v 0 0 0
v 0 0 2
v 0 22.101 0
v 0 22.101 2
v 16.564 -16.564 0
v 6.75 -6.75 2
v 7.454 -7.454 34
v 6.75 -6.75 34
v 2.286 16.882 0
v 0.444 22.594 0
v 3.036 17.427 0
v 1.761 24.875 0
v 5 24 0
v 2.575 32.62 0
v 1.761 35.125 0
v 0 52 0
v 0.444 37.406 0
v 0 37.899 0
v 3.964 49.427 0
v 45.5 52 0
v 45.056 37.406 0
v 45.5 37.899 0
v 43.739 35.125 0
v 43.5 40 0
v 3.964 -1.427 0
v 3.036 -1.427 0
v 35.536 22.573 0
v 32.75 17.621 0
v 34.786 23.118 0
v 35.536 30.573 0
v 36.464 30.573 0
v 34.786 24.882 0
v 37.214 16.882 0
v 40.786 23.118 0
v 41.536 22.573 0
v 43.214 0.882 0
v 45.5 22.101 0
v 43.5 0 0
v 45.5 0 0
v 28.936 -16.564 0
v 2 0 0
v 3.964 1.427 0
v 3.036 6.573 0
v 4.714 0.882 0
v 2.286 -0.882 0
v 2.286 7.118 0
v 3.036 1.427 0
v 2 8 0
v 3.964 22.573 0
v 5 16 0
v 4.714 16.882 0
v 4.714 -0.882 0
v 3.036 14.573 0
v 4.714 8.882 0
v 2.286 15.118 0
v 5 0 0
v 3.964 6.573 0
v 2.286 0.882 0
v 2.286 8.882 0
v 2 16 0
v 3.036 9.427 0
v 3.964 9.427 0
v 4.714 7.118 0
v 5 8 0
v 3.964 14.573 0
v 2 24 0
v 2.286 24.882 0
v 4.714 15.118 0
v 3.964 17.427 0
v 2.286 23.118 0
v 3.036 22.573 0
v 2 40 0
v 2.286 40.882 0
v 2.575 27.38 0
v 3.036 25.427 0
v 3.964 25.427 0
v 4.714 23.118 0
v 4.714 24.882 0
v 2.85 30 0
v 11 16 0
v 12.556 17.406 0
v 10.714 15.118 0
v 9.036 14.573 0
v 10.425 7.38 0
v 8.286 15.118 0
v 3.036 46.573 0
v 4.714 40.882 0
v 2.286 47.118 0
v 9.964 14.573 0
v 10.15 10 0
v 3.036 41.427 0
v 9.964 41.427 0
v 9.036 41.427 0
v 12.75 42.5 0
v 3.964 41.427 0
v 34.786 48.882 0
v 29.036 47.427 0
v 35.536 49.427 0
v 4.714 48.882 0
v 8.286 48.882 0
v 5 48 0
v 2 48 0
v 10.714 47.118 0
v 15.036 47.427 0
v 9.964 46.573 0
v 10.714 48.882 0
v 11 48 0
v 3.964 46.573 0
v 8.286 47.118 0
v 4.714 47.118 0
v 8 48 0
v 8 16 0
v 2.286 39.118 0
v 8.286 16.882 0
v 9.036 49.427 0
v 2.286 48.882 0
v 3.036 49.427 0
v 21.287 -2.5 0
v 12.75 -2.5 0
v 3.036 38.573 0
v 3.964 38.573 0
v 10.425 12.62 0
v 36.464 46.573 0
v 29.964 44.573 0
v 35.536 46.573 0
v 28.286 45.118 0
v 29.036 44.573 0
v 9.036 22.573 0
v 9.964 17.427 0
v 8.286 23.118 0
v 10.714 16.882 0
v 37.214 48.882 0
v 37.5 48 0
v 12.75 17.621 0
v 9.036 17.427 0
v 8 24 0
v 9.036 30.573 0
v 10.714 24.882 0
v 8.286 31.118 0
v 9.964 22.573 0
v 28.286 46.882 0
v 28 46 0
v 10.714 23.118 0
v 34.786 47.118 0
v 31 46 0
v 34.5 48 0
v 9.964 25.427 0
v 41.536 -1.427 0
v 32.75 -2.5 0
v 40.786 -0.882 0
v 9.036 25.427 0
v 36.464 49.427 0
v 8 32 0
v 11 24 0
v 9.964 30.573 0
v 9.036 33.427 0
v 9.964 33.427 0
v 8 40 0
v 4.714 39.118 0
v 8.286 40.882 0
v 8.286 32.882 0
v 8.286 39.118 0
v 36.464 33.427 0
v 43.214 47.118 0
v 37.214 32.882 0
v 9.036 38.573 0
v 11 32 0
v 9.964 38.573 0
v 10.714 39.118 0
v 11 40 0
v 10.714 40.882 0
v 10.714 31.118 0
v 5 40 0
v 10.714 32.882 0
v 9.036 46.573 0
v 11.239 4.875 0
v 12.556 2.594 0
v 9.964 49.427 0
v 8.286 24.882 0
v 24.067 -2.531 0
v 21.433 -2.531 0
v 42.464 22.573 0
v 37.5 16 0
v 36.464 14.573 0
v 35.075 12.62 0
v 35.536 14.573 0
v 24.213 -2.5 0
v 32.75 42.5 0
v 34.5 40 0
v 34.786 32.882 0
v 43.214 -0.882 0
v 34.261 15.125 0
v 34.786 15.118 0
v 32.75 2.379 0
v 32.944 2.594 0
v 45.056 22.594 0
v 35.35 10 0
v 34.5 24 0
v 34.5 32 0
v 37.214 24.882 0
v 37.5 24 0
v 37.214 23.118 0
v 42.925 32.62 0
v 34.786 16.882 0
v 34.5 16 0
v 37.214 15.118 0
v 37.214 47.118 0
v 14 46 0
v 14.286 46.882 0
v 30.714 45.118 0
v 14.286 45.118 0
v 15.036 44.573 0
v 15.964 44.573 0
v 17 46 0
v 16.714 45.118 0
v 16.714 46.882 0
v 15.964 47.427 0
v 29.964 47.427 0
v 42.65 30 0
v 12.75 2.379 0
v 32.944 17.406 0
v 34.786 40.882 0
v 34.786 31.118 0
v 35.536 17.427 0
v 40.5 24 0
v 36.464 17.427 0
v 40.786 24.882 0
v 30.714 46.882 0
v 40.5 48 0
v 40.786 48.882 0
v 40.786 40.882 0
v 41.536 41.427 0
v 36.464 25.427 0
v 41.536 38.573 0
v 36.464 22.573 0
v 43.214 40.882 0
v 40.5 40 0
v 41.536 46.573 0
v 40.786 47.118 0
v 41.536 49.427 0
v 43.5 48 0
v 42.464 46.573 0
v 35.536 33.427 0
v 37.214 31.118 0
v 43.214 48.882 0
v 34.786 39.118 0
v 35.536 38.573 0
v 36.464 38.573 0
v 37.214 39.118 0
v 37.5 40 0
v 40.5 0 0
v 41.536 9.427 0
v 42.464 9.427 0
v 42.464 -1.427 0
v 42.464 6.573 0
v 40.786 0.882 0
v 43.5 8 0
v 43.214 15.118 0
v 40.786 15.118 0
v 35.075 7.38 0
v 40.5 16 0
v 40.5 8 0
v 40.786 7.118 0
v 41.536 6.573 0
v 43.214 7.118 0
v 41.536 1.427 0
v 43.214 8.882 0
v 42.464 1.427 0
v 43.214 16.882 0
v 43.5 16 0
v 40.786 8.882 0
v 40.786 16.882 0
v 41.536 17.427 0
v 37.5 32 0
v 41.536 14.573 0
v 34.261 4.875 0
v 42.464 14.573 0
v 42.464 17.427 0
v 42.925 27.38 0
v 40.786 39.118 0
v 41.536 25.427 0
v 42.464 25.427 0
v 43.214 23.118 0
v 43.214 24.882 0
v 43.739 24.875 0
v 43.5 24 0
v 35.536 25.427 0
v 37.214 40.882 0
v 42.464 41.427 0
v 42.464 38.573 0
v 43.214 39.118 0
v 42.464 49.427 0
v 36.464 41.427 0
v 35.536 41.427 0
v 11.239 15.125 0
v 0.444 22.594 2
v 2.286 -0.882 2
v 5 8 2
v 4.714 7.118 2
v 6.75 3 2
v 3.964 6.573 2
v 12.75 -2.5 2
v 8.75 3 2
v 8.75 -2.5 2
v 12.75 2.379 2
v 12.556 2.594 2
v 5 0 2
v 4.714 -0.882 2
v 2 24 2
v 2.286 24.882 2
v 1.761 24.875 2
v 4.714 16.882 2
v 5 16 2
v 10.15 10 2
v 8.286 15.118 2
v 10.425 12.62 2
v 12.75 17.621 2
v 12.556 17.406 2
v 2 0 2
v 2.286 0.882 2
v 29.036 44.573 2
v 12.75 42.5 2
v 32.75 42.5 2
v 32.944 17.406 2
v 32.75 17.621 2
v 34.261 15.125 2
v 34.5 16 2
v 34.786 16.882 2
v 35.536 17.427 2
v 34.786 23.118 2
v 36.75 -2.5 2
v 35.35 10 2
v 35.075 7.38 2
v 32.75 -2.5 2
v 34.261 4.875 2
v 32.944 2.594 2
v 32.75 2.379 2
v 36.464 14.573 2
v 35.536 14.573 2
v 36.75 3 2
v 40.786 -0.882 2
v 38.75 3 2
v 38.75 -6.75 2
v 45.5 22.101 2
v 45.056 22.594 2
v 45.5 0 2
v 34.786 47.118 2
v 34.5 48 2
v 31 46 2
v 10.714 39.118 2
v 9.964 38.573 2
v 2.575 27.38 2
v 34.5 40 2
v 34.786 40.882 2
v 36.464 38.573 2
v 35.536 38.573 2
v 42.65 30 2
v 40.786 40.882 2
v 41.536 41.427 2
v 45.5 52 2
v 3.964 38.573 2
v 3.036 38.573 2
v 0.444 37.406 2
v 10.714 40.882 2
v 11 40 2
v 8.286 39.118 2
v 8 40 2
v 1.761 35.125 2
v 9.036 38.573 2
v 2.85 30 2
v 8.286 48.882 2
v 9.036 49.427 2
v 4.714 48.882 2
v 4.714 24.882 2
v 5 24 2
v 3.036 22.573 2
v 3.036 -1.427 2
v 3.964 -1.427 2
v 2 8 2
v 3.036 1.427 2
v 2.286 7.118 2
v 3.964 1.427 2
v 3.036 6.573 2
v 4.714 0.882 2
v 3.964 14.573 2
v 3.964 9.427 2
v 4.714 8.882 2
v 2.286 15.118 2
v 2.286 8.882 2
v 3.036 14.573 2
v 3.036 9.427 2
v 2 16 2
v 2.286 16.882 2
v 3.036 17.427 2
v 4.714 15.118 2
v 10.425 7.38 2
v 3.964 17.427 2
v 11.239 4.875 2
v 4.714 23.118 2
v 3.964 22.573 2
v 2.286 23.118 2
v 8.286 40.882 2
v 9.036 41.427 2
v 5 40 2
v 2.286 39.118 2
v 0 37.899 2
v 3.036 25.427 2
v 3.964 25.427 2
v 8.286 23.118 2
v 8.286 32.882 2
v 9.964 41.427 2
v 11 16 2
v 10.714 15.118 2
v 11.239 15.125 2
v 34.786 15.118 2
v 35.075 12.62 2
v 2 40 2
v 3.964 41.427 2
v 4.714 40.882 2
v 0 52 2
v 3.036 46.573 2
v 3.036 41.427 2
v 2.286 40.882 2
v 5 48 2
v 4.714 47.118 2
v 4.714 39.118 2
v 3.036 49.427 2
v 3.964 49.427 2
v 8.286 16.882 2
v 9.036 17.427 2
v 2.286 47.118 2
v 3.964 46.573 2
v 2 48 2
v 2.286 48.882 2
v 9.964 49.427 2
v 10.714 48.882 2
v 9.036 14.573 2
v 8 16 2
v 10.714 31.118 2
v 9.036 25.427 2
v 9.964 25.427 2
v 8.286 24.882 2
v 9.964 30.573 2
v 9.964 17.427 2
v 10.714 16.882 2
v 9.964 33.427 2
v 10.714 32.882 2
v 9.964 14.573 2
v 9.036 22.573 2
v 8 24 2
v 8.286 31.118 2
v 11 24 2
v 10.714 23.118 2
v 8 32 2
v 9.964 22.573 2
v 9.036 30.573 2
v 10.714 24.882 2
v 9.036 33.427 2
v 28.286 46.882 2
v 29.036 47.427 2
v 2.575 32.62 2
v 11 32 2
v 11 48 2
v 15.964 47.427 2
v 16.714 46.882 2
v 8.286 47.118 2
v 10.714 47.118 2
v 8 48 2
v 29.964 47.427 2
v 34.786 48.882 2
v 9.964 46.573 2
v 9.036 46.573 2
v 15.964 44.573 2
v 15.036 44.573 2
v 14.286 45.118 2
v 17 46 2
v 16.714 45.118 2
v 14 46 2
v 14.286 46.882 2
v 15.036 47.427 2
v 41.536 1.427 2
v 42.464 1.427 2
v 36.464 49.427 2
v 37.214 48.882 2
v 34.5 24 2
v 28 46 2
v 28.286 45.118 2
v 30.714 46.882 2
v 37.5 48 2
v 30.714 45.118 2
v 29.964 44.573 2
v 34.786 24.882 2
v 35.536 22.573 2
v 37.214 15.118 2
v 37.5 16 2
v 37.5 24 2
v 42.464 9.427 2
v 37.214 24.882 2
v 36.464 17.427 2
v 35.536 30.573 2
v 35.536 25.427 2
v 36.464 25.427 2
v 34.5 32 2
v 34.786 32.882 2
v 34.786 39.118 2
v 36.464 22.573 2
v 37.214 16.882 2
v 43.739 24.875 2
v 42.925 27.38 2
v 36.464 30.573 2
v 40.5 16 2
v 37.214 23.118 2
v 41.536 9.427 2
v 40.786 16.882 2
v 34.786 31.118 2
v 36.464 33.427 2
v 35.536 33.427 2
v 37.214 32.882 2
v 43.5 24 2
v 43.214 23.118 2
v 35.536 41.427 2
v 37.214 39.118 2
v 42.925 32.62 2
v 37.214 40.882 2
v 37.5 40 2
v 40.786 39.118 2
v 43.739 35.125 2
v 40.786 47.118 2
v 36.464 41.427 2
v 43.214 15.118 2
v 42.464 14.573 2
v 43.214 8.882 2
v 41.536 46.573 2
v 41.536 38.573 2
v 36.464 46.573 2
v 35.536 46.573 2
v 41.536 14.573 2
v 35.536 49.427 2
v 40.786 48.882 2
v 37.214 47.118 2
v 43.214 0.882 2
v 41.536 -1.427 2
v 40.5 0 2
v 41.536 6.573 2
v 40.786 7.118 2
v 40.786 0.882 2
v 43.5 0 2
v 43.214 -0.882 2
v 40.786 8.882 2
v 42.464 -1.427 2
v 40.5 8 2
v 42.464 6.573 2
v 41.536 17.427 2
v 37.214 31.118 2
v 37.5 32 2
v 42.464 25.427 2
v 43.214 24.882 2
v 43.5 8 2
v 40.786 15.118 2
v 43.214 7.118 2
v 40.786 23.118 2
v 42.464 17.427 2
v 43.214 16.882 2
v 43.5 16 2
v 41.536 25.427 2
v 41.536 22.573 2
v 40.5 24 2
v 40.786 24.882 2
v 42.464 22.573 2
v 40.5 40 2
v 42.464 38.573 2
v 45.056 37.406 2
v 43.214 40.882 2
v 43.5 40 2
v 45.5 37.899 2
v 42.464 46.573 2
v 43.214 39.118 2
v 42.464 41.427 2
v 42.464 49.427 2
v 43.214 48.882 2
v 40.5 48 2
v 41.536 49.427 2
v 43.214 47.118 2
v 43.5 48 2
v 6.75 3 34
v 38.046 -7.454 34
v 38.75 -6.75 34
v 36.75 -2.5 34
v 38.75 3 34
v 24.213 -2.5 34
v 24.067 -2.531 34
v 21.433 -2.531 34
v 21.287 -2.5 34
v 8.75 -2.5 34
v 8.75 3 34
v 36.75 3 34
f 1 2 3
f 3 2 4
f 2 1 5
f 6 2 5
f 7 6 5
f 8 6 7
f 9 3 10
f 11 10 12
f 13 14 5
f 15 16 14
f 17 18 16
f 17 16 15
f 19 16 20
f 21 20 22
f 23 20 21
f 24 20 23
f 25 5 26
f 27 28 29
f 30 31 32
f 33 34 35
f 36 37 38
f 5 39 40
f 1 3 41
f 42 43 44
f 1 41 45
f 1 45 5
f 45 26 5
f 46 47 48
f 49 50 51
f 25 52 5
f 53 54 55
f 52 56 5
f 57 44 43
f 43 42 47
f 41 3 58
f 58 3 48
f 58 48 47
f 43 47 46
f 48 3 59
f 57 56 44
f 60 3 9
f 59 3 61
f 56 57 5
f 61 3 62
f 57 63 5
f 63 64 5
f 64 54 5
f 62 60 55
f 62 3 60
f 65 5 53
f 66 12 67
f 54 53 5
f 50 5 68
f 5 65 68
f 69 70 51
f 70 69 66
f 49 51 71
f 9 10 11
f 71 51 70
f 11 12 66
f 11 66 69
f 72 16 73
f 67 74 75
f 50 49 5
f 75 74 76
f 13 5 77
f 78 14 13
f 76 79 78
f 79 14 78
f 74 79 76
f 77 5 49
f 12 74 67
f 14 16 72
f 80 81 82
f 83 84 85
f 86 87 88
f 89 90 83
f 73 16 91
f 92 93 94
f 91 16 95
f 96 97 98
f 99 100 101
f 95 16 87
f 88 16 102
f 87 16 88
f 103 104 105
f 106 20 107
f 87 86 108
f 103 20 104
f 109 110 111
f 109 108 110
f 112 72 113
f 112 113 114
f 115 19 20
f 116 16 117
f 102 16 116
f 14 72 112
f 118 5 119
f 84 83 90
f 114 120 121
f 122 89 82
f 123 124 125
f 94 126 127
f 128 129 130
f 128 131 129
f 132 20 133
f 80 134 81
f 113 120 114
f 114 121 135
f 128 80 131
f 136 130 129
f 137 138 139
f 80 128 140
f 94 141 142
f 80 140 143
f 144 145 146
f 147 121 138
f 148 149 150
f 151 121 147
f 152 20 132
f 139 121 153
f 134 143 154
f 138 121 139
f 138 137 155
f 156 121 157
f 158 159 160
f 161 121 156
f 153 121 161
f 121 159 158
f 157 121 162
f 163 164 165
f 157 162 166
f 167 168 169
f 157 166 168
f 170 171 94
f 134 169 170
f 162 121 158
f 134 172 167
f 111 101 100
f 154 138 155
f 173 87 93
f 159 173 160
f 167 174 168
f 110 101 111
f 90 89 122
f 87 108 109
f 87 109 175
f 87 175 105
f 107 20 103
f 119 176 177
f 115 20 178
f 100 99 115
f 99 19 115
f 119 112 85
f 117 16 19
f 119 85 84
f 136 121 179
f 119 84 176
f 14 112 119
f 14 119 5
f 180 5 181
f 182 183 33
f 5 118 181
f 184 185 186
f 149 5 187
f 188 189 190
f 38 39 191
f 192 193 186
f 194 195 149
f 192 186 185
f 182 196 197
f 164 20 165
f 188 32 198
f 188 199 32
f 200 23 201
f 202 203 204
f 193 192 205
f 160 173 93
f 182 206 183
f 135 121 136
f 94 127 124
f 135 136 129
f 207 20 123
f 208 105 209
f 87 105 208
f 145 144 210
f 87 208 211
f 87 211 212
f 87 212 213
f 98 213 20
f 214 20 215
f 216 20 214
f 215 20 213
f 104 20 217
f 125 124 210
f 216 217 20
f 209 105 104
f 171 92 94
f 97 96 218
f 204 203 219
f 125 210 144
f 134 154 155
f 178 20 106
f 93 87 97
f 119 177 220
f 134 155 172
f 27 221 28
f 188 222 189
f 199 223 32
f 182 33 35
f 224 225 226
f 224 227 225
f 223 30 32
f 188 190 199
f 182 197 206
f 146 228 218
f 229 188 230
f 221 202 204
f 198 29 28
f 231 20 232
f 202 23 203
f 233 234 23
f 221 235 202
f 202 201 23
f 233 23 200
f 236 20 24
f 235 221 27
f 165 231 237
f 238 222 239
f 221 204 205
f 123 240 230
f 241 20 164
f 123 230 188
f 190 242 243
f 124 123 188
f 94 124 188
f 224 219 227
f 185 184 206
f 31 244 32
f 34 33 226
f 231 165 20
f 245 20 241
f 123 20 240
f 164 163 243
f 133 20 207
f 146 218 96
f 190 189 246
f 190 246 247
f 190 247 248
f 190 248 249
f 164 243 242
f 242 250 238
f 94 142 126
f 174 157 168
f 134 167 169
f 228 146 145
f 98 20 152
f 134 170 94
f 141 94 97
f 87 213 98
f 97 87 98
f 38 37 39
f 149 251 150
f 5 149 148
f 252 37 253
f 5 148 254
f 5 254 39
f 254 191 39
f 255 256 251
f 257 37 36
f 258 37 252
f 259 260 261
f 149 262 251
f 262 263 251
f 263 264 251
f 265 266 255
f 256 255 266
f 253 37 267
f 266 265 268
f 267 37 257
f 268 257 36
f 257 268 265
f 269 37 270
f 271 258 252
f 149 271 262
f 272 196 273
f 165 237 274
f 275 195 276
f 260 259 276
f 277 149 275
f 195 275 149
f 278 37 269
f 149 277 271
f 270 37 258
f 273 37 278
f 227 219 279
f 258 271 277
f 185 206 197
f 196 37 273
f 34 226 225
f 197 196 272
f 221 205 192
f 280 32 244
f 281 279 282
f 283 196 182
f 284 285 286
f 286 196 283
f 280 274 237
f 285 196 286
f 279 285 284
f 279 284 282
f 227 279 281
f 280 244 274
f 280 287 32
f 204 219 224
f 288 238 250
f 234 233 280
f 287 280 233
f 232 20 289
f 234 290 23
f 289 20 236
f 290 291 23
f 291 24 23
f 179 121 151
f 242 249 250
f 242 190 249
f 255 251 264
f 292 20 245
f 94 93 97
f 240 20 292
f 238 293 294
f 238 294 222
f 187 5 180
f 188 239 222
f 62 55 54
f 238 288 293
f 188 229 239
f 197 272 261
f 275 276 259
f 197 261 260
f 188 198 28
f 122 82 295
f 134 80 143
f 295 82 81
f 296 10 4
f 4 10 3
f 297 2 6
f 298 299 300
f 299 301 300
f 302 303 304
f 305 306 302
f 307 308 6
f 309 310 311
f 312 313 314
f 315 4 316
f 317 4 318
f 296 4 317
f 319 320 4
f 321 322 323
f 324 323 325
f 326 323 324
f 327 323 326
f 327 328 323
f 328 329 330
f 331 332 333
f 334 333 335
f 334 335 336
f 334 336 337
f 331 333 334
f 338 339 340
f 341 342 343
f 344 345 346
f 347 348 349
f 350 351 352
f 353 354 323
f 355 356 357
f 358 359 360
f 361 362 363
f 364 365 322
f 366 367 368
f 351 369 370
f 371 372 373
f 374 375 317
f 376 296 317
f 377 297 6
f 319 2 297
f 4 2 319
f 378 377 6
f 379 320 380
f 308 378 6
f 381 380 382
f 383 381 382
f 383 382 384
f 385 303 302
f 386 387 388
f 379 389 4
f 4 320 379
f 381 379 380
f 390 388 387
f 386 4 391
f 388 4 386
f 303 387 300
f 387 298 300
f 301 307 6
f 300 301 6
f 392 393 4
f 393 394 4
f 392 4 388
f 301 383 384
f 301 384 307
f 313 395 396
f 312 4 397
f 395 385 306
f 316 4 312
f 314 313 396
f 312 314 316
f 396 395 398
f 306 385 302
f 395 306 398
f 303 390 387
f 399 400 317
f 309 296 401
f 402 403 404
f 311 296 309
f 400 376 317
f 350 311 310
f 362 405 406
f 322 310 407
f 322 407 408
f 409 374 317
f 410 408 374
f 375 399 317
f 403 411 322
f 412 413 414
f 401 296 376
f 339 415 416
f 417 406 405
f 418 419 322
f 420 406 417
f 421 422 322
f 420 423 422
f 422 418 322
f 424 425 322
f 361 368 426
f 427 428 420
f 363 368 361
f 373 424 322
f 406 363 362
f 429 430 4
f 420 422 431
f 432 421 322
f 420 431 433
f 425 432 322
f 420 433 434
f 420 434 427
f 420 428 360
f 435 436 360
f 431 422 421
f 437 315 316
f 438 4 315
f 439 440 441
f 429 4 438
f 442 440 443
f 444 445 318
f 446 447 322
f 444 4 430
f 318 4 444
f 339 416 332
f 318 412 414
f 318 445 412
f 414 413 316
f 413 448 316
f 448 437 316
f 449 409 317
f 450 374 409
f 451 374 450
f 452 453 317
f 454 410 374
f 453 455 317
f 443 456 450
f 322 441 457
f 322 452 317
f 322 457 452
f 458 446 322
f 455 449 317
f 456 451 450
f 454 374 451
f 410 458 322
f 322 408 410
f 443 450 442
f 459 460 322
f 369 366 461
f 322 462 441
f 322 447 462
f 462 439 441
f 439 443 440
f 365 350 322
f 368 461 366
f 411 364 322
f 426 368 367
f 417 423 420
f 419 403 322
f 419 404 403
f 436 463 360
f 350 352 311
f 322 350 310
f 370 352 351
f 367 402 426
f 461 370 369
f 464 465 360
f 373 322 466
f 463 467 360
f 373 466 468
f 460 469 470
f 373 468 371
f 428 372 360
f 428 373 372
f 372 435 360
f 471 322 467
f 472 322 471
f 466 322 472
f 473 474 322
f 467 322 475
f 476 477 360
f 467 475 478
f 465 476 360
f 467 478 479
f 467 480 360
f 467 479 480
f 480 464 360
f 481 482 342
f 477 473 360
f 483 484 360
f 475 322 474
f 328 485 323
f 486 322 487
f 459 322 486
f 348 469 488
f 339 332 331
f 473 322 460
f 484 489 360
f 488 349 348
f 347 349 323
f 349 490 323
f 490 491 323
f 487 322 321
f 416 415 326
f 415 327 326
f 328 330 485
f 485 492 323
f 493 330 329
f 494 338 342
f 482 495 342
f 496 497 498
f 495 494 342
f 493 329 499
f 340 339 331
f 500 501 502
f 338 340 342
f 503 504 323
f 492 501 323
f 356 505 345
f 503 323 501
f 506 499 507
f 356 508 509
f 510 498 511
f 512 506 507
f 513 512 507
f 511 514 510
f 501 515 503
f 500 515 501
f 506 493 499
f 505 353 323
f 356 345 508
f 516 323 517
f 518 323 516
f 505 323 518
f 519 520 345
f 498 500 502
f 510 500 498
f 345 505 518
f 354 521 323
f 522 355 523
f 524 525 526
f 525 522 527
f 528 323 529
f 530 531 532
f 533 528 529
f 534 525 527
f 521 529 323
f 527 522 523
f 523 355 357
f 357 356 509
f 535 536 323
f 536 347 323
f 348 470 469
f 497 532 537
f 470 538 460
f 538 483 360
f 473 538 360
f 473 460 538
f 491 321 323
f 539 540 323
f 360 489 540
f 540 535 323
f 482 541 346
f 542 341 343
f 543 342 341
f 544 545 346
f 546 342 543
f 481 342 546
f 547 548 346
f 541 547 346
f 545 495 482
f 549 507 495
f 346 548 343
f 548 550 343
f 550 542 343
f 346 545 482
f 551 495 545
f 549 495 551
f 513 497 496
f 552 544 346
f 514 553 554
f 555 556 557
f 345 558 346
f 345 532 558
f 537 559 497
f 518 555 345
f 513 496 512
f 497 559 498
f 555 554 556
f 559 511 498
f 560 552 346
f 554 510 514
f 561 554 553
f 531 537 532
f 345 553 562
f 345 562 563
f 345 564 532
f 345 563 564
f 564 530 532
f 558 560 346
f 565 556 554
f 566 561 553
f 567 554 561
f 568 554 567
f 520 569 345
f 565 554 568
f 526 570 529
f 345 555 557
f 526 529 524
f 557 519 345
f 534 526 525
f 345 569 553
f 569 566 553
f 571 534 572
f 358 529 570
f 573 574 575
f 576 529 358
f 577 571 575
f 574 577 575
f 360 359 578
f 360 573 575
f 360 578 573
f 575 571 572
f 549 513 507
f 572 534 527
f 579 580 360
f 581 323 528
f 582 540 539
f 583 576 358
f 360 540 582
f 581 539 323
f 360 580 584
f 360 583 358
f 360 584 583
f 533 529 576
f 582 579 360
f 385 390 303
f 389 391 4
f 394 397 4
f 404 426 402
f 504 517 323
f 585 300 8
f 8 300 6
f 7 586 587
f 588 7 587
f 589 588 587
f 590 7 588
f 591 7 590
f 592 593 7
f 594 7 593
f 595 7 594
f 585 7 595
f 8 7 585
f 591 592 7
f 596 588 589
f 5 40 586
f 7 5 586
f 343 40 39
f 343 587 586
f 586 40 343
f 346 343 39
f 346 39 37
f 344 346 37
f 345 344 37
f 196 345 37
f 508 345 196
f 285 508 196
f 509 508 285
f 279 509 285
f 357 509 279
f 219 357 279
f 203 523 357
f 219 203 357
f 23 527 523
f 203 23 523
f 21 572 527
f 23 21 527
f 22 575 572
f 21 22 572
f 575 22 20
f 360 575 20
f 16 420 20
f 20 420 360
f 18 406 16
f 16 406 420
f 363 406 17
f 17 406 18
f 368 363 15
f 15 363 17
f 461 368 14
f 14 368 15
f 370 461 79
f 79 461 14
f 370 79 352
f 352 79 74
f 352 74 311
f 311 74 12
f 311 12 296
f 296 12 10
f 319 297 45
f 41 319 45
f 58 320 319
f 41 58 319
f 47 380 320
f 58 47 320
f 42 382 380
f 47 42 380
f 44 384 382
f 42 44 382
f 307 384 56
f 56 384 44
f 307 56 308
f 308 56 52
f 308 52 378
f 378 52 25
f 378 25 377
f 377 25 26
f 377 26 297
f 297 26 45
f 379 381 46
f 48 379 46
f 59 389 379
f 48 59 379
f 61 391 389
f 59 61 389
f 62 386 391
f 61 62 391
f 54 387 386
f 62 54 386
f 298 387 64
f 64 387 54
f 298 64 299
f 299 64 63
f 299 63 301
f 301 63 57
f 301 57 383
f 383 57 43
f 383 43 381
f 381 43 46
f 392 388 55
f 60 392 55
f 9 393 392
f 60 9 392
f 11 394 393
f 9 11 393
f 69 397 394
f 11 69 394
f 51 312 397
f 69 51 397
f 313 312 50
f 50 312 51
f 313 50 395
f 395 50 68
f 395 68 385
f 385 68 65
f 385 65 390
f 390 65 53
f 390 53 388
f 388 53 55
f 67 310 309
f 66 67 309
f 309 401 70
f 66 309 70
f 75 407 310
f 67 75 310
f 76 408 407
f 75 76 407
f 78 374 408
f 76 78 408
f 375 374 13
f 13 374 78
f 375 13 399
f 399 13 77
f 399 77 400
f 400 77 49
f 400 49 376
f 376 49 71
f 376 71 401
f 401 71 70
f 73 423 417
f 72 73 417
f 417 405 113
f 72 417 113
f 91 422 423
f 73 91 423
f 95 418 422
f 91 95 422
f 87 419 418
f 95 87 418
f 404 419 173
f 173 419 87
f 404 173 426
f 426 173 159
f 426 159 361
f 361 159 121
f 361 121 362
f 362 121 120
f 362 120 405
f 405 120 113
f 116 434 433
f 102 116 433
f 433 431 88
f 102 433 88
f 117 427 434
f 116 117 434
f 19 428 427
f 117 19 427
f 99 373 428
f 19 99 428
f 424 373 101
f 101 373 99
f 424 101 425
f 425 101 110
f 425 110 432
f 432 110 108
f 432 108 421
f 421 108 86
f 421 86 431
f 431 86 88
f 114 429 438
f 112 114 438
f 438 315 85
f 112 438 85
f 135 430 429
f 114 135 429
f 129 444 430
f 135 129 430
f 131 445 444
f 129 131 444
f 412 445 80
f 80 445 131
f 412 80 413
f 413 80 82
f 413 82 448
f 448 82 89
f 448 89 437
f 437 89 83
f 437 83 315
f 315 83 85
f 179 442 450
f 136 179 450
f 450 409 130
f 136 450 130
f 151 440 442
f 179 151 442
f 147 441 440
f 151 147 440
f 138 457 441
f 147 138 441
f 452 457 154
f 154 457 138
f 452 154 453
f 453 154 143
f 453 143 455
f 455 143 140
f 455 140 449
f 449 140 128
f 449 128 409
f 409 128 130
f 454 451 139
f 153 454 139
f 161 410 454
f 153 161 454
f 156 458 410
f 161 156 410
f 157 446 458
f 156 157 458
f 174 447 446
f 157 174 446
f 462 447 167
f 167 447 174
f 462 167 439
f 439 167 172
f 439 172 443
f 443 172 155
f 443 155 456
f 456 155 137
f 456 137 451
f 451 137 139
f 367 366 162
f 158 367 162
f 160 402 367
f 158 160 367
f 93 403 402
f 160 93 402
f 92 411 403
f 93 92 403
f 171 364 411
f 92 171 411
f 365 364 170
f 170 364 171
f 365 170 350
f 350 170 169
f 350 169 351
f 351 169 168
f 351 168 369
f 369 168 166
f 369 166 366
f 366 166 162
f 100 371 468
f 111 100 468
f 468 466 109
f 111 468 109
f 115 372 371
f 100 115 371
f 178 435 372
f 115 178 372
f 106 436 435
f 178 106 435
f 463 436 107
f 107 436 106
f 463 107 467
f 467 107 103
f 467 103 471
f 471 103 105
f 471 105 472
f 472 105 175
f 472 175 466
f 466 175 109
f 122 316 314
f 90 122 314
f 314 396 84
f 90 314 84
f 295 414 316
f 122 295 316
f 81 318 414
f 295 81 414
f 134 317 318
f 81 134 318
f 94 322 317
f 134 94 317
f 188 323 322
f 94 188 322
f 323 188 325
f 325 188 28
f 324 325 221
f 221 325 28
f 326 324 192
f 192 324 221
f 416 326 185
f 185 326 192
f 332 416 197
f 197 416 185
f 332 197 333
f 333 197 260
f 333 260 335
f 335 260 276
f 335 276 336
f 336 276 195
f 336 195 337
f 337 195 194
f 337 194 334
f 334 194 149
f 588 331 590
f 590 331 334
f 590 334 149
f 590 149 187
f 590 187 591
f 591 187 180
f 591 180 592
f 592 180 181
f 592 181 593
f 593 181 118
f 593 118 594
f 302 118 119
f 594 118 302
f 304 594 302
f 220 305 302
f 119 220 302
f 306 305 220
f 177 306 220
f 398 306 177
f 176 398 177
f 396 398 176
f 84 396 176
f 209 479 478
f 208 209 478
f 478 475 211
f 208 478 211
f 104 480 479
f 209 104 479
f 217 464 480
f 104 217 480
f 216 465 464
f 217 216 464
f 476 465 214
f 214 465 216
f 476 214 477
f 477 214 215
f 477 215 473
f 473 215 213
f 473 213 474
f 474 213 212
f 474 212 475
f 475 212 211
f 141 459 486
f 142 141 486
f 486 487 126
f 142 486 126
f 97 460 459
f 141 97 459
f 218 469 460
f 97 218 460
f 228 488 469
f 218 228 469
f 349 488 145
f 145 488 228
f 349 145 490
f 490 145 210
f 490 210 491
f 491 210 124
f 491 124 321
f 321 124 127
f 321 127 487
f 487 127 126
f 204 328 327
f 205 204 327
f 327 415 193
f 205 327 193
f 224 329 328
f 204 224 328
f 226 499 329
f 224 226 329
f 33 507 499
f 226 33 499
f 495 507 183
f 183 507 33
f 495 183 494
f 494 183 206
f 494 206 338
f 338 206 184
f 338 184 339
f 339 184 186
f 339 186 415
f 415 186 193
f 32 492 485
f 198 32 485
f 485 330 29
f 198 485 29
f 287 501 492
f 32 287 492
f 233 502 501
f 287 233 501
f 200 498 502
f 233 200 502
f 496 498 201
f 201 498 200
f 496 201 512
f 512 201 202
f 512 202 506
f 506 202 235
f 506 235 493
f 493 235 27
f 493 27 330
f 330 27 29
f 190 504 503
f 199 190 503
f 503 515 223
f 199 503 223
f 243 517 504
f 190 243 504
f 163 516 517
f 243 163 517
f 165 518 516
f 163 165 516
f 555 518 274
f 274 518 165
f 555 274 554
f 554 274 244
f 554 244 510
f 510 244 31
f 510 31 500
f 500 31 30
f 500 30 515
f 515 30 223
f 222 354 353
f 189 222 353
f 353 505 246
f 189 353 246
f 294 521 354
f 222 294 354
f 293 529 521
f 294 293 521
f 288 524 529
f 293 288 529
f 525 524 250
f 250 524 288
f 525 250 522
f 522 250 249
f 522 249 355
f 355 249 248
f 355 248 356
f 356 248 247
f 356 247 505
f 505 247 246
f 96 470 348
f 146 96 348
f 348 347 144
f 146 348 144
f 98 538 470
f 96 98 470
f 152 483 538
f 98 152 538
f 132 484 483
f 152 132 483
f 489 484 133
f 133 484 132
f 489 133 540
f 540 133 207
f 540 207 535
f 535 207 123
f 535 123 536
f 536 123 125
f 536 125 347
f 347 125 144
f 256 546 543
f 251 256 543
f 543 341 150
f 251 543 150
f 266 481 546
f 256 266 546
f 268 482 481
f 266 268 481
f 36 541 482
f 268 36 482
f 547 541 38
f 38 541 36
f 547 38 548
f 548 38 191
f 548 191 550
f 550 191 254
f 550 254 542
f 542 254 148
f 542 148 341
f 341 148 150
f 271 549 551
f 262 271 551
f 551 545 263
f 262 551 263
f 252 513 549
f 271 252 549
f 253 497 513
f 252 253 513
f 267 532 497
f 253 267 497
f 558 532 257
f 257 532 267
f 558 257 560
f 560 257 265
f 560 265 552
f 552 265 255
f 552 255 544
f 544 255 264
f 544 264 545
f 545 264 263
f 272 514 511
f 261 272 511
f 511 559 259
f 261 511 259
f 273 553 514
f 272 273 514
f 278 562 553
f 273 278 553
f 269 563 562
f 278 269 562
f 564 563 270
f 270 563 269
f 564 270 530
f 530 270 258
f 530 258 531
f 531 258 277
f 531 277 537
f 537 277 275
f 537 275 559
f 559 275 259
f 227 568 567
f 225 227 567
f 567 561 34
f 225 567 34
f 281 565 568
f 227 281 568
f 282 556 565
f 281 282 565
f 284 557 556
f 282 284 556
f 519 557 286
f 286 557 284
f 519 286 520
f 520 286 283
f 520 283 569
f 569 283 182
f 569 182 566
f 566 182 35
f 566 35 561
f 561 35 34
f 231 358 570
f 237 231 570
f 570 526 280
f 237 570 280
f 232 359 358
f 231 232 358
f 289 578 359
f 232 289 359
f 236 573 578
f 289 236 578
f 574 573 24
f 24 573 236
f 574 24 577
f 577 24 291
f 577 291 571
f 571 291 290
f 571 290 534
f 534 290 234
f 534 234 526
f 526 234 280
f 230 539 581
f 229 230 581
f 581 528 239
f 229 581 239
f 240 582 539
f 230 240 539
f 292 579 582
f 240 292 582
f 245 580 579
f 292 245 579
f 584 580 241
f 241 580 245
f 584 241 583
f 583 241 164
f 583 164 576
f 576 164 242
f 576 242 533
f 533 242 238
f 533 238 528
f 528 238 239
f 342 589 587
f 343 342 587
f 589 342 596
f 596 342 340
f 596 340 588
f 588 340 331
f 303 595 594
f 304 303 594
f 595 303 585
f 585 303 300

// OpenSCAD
module agujereado(X,Y){
	union(){
		for(j=[0:X])
		{
			translate([0,j*8,0])
			{
				for(i=[0:Y])
				{
					translate([i*6,0,-1])cylinder(r=1.5, h=8, $fn=10);
				}
			}
		}
	}
}

module pieza(){
difference(){
union(){
cube([45.5,52,2]);
translate([45.5/2,0,0])cylinder(r=45.5/2,h=35,$fn=4);
}
rotate([-15,0,0])translate([0,-66,-10])cube([45.5,50,100]);
translate([-1,3,2])cube([47,65,36]);

translate([(45.5-20)/2,-2.5,-1])cube([20,45,40]);
translate([(45.5-20)/2-4,-2.5,2])cube([28,8,40]);


translate([0,-20,2])cube([(45.5-32)/2,70,70]);
translate([45.5-(45.5-32)/2,-20,2])cube([(45.5-32)/2,70,70]);
translate([22.5,46,0])union(){
	translate([7,0,-1])cylinder(r=1.5, h=5, $fn=10);
	translate([-7,0,-1])cylinder(r=1.5, h=5, $fn=10);
}

translate([3.5,0,0])agujereado(3,0);
translate([3.5+6,16,0])agujereado(4,0);
translate([9.5+26.5,16,0])agujereado(4,0);
translate([9.5+32.5,0,0])agujereado(3,0);
translate([9.5+32.5,40,0])agujereado(1,0);
translate([3.5,40,0])agujereado(1,0);



translate([45.5/2,10,-1])cylinder(r=12.6,h=40);
translate([-9.75,30,-1])cylinder(r=12.6,h=40);
translate([55.25,30,-1])cylinder(r=12.6,h=40);

translate([-50,-50,34])cube(100);

}
}

pieza();
